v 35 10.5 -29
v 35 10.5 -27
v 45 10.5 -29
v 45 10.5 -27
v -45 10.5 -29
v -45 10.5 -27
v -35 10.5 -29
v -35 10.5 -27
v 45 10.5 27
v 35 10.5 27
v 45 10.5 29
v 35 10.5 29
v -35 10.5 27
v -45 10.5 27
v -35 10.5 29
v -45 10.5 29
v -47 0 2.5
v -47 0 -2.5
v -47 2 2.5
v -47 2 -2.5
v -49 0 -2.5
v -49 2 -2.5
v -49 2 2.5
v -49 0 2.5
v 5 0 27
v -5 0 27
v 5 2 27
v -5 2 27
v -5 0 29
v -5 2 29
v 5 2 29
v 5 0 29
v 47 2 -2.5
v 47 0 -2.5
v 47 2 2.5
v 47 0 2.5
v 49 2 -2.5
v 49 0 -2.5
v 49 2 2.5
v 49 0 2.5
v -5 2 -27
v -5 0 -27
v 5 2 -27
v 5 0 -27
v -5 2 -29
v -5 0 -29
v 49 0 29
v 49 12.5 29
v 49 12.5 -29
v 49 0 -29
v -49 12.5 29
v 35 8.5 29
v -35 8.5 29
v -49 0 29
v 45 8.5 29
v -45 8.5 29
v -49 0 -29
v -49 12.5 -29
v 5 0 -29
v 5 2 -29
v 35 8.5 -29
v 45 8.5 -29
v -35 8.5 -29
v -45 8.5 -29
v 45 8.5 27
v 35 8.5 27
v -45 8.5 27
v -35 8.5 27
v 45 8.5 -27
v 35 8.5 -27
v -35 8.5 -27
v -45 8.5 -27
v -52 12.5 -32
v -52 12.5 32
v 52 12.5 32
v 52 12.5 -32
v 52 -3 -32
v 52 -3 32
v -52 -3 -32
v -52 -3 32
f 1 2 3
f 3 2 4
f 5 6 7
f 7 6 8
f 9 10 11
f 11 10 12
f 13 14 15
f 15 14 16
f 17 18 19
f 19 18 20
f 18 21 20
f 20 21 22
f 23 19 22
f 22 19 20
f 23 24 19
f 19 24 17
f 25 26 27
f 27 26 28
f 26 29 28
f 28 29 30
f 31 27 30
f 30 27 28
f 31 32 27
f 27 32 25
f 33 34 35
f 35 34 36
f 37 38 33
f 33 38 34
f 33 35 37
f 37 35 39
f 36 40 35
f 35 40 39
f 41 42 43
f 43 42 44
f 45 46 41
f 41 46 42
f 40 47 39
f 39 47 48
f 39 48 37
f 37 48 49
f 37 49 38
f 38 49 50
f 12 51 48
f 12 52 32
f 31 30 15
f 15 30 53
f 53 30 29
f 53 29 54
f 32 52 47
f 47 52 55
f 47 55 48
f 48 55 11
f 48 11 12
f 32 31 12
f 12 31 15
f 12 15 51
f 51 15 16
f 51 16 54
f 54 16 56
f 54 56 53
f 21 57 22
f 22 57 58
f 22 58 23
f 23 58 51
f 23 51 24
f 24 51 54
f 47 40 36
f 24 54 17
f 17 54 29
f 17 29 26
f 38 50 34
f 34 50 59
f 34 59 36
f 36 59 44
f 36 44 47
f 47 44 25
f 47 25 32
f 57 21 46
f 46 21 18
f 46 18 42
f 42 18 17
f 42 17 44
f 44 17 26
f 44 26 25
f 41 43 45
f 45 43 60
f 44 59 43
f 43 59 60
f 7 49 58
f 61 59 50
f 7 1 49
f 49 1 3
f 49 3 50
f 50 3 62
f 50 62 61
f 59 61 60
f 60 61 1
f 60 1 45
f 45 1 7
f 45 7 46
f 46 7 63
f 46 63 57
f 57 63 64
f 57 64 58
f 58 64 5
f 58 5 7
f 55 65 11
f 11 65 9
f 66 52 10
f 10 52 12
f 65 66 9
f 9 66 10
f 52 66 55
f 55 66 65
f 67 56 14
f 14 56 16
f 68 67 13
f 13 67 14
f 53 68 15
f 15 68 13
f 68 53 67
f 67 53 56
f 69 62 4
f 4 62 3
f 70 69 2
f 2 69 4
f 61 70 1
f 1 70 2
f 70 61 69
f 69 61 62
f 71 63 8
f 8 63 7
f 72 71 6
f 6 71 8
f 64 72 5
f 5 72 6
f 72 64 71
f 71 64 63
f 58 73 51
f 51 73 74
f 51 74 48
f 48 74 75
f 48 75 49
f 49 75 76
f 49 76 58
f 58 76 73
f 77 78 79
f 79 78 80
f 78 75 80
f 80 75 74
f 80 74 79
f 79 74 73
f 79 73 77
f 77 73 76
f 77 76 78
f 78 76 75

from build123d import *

# Parameters (mm, degrees)
SKETCH_1_W      = 104
SKETCH_1_H      = 64
SKETCH_1_W_2    = 98
SKETCH_1_H_2    = 58
EXTRUDE_1_DEPTH = 2
SKETCH_1_3_W    = 104
SKETCH_1_3_H    = 64
EXTRUDE_2_DEPTH = 3
SKETCH_2_W      = 2
SKETCH_2_H      = 5
SKETCH_2_W_2    = 10
SKETCH_2_H_2    = 2
EXTRUDE_3_DEPTH = 2
EXTRUDE_START   = 2
SKETCH_1_4_W    = 104
SKETCH_1_4_H    = 64
SKETCH_1_4_W_2  = 98
SKETCH_1_4_H_2  = 58
EXTRUDE_4_DEPTH = 8.5
SKETCH_3_W      = 10
SKETCH_3_H      = 2
EXTRUDE_5_DEPTH = 2
EXTRUDE_START_2 = 10.5
SKETCH_1_5_W    = 104
SKETCH_1_5_H    = 64
SKETCH_1_5_W_2  = 98
SKETCH_1_5_H_2  = 58
EXTRUDE_6_DEPTH = 2


with BuildPart() as part:
    # 草图1 → 凸台-拉伸1 (new body)
    with BuildSketch(Plane(origin=(0, 0, 0), x_dir=(1, 0, 0), z_dir=(0, 1, 0))):
        Rectangle(SKETCH_1_W, SKETCH_1_H)
        Rectangle(SKETCH_1_W_2, SKETCH_1_H_2, mode=Mode.SUBTRACT)
    extrude(amount=EXTRUDE_1_DEPTH)

    # 草图1<3> → 凸台-拉伸2 (add)
    with BuildSketch(Plane(origin=(0, 0, 0), x_dir=(1, 0, 0), z_dir=(0, 1, 0))):
        Rectangle(SKETCH_1_3_W, SKETCH_1_3_H)
    extrude(amount=-EXTRUDE_2_DEPTH)

    # 草图2 → 凸台-拉伸3 (add)
    with BuildSketch(Plane(origin=(0, 0, 0), x_dir=(1, 0, 0), z_dir=(0, 1, 0))):
        with Locations((-48, 0)):
            Rectangle(SKETCH_2_W, SKETCH_2_H)
        with Locations((48, 0)):
            Rectangle(SKETCH_2_W, SKETCH_2_H)
        with Locations((0, 28)):
            Rectangle(SKETCH_2_W_2, SKETCH_2_H_2)
        with Locations((0, -28)):
            Rectangle(SKETCH_2_W_2, SKETCH_2_H_2)
    extrude(amount=EXTRUDE_3_DEPTH)

    # 草图1<4> → 凸台-拉伸4 (add)
    with BuildSketch(Plane(origin=(0, 0, 0), x_dir=(1, 0, 0), z_dir=(0, 1, 0)).offset(EXTRUDE_START)):
        Rectangle(SKETCH_1_4_W, SKETCH_1_4_H)
        Rectangle(SKETCH_1_4_W_2, SKETCH_1_4_H_2, mode=Mode.SUBTRACT)
    extrude(amount=EXTRUDE_4_DEPTH)

    # 草图3 → 凸台-拉伸5 (add)
    with BuildSketch(Plane(origin=(0, 10.5, 0), x_dir=(1, 0, 0), z_dir=(0, 1, 0))):
        with Locations((40, -28)):
            Rectangle(SKETCH_3_W, SKETCH_3_H)
        with Locations((-40, -28)):
            Rectangle(SKETCH_3_W, SKETCH_3_H)
        with Locations((40, 28)):
            Rectangle(SKETCH_3_W, SKETCH_3_H)
        with Locations((-40, 28)):
            Rectangle(SKETCH_3_W, SKETCH_3_H)
    extrude(amount=-EXTRUDE_5_DEPTH)

    # 草图1<5> → 凸台-拉伸6 (add)
    with BuildSketch(Plane(origin=(0, 0, 0), x_dir=(1, 0, 0), z_dir=(0, 1, 0)).offset(EXTRUDE_START_2)):
        Rectangle(SKETCH_1_5_W, SKETCH_1_5_H)
        Rectangle(SKETCH_1_5_W_2, SKETCH_1_5_H_2, mode=Mode.SUBTRACT)
    extrude(amount=EXTRUDE_6_DEPTH)


solid = part.part
